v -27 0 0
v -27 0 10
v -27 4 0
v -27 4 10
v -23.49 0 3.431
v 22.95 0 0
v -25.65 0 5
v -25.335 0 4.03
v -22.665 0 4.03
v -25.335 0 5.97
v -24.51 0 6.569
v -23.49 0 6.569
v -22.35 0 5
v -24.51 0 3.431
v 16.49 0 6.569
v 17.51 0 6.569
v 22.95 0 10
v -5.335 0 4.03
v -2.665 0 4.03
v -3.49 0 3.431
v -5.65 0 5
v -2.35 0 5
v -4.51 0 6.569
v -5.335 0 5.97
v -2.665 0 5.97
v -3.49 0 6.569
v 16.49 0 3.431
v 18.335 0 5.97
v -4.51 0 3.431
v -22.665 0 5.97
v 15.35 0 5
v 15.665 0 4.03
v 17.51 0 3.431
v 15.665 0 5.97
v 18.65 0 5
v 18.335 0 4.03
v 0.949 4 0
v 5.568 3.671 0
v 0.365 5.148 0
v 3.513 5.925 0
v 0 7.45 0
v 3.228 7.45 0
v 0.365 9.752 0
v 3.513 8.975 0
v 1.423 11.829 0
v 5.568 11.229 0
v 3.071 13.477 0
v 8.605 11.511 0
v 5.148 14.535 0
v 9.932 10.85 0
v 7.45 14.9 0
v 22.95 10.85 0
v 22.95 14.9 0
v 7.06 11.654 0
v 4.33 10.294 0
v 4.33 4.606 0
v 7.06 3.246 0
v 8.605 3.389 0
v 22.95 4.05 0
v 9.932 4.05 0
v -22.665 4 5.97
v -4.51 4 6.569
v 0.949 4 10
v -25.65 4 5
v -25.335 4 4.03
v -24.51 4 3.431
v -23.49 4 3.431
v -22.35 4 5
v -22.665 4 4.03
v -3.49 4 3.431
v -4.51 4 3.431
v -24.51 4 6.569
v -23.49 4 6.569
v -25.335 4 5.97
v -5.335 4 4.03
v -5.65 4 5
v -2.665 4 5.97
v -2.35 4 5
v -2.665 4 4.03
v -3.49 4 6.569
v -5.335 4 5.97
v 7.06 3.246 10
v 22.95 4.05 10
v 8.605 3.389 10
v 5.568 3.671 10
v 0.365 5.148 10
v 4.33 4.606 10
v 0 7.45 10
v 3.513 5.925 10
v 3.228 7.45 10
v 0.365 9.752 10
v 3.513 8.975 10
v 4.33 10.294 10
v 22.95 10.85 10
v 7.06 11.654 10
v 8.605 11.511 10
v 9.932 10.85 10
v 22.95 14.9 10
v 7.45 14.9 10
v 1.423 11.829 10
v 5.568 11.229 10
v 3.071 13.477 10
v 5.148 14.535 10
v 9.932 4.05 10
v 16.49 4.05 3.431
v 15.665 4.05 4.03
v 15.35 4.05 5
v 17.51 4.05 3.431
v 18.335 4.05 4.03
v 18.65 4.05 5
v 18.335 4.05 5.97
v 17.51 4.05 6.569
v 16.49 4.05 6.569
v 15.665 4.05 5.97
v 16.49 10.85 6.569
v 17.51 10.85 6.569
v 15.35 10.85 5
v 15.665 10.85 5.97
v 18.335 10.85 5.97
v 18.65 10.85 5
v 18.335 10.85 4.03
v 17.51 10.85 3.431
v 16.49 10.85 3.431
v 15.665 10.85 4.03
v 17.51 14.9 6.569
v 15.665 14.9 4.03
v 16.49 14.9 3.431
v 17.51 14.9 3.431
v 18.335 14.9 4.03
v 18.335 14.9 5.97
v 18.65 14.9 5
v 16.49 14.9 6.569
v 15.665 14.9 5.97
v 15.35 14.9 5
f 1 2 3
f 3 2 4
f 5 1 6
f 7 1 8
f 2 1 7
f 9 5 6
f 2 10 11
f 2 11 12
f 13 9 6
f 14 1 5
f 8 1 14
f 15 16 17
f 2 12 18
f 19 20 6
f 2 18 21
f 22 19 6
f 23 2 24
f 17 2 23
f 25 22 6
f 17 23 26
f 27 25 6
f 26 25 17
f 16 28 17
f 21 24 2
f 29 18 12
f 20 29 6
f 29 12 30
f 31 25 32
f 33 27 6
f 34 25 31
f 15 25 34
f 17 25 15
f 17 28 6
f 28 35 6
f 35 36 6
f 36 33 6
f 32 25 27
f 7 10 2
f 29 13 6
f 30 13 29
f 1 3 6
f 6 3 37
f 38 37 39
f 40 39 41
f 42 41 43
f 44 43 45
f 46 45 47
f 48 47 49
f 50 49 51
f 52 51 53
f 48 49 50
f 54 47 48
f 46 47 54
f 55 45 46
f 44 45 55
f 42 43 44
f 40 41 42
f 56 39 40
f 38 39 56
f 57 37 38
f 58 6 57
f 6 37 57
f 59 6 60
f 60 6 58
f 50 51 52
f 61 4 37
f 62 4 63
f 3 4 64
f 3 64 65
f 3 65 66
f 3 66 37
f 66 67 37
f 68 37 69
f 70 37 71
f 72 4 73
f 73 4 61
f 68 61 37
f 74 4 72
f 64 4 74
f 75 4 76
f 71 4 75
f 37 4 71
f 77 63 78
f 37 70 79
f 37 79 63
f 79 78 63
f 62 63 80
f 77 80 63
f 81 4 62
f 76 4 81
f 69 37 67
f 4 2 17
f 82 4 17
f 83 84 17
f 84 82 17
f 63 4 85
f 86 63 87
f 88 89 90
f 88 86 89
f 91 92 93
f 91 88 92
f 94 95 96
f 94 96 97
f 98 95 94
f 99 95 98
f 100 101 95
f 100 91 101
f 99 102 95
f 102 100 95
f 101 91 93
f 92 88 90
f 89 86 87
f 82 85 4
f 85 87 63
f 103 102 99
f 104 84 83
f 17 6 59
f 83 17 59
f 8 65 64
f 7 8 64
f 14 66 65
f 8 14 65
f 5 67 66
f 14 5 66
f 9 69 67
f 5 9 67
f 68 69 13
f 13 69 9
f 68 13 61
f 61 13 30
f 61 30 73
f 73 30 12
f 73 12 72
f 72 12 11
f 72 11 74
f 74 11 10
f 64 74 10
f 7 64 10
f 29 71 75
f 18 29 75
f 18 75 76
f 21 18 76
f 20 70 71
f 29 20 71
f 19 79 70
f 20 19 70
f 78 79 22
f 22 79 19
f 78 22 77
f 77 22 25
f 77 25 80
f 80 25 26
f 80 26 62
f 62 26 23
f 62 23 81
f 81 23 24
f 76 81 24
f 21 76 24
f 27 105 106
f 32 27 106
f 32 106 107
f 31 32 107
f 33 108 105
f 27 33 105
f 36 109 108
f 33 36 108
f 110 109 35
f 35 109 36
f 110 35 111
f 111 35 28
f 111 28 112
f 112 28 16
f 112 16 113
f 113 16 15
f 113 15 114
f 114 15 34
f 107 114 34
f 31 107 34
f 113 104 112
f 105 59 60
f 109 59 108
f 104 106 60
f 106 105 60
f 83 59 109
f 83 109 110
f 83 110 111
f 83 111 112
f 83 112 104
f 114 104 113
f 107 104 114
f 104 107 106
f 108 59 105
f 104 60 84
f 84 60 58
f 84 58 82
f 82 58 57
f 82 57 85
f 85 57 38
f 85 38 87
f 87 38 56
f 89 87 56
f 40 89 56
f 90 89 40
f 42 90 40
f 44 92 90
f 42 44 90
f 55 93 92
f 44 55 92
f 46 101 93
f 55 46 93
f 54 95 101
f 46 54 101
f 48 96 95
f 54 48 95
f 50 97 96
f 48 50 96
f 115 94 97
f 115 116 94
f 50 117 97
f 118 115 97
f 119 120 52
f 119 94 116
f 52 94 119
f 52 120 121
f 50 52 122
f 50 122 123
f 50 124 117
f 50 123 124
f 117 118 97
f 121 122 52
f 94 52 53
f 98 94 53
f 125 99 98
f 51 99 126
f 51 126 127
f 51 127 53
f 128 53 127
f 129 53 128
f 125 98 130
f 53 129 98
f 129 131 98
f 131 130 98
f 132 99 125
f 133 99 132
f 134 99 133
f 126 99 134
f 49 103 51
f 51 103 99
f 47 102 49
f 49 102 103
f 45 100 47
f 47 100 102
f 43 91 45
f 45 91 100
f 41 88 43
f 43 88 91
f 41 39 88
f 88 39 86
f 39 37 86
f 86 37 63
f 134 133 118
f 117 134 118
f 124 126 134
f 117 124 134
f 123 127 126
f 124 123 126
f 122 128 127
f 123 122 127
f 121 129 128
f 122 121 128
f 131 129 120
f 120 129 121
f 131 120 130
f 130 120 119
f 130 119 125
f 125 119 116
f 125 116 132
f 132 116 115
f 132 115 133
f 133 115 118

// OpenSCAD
// file: configuration.scad
// PRUSA Mendel  
// Configuration file
// GNU GPL v2
// Josef Průša
// josefprusa@me.com
// prusadjs.cz
// http://www.reprap.org/wiki/Prusa_Mendel
// http://github.com/prusajr/PrusaMendel

// PLEASE SELECT ONE OF THE CONFIGURATIONS BELOW
// BY UN-COMMENTING IT

variant=0; //0 for metric
//variant=1; //1 for SAE
if(variant==0){
echo("variant: metric");
}else if(variant==1){
echo("variant: sae");
} else{
echo("WARNING: INVALID CONFIGURATION");
}


vars=[
//[m8_dia, m8_nut, m4_dia, m4_nut, m3_dia, m3_nut, bush_dia, mot_shaft, bush_rod, bush_outerdia, bush_length]
[8.3,16.4,4.3,9,3.3,7,11,5.3,8,16,11],//metric
[9,15.7,5.5,10.6,5.5,10.6,11.5,5.3,7.9375,16,11]//SAE
];

//BUSHING TYPE Can generate three versions
// 1 - regular old ones
// 2 - helical ones
// 3 - holders for brass or any other bought bushings
bushing_type = 2;

//Round corner diameter
round_corner_diameter = 8;

//X end parameters
axis_diameter_real = 4;
axis_diameter_larger = 4.2 ;
pressure_pad_height = 0.7;

//Thin wall size
layer_height = 0.4;
perimeter_width_over_thicknes = 1.6;
infill_widht_over_thickness = 1.55;
thin_wall = 2*(perimeter_width_over_thicknes*layer_height+infill_widht_over_thickness*layer_height);
if(thin_wall<2){
	echo("Check thin wall size, its below 2mm!");
}
echo(thin_wall);

//DO NOT TOUCH THIS SECTION!
m8_diameter = vars[variant][0];
m8_nut_diameter = vars[variant][1];
m4_diameter = vars[variant][2];
m4_nut_diameter = vars[variant][3];
m3_diameter = vars[variant][4];
m3_nut_diameter = vars[variant][5];
bushing_diameter = vars[variant][6];
motor_shaft=vars[variant][7];
bushing_rodsize = vars[variant][8];
bushing_outerDiameter = vars[variant][9];
bushing_lenght = vars[variant][10];


// MINI-HUXLEY VERSION (TODO, just place holder)
// include <configuration-huxley.scad>

// MEGA VERSION (TODO, just place holder)
// include <configuration-mega.scad>


// Some basic functions, probably should be somewhere else
module roundcorner(diameter){
	difference(){
		cube(size = [diameter,diameter,99], center = false);
		translate(v = [diameter, diameter, 0]) cylinder(h = 100, r=diameter, center=true);
	}
}
module polyhole(h, d) {
    n = max(round(2 * d),3);
    rotate([0,0,180])
        cylinder(h = h, r = (d / 2) / cos (180 / n), $fn = n);
}
// main file
// PRUSA Mendel  
// Endstop holder
// Used to attach endstops to 8mm rods
// GNU GPL v2
// Josef Průša
// josefprusa@me.com
// prusadjs.cz
// http://www.reprap.org/wiki/Prusa_Mendel
// http://github.com/prusajr/PrusaMendel

include <configuration.scad>

/**
 * @name Endstop holder
 * @category Printed
 * @using 1 m3x20
 * @using 1 m3nut
 * @using 2 m3washer
 */
module endstop(){
outer_diameter = m8_diameter/2+3.3;
screw_hole_spacing = 20;
opening_size = m8_diameter-1.5; //openingsize

difference(){
	union(){


		translate([outer_diameter, outer_diameter, 0]) cylinder(h =10, r = outer_diameter, $fn = 20);
		translate([outer_diameter, 0, 0]) cube([15.5,outer_diameter*2,10]);
		translate([-27, 0, 0]) cube([35, 4, 10]);
	}




	translate([9, outer_diameter-opening_size/2, 0]) cube([18,opening_size,20]);
	translate([outer_diameter, outer_diameter, 0]) //cylinder(h =20, r = m8_diameter/2, $fn = 18);
		polyhole(20,m8_diameter);
	translate([17, 17, 5]) rotate([90, 0, 0]) cylinder(h =20, r = m3_diameter/2, $fn = 10);
	translate([-4, 17, 5]) rotate([90, 0, 0]) cylinder(h =20, r = m3_diameter/2, $fn = 10);
	translate([-(4+screw_hole_spacing), 17, 5]) rotate([90, 0, 0]) cylinder(h =20, r = m3_diameter/2, $fn = 10);
}
}
endstop();
